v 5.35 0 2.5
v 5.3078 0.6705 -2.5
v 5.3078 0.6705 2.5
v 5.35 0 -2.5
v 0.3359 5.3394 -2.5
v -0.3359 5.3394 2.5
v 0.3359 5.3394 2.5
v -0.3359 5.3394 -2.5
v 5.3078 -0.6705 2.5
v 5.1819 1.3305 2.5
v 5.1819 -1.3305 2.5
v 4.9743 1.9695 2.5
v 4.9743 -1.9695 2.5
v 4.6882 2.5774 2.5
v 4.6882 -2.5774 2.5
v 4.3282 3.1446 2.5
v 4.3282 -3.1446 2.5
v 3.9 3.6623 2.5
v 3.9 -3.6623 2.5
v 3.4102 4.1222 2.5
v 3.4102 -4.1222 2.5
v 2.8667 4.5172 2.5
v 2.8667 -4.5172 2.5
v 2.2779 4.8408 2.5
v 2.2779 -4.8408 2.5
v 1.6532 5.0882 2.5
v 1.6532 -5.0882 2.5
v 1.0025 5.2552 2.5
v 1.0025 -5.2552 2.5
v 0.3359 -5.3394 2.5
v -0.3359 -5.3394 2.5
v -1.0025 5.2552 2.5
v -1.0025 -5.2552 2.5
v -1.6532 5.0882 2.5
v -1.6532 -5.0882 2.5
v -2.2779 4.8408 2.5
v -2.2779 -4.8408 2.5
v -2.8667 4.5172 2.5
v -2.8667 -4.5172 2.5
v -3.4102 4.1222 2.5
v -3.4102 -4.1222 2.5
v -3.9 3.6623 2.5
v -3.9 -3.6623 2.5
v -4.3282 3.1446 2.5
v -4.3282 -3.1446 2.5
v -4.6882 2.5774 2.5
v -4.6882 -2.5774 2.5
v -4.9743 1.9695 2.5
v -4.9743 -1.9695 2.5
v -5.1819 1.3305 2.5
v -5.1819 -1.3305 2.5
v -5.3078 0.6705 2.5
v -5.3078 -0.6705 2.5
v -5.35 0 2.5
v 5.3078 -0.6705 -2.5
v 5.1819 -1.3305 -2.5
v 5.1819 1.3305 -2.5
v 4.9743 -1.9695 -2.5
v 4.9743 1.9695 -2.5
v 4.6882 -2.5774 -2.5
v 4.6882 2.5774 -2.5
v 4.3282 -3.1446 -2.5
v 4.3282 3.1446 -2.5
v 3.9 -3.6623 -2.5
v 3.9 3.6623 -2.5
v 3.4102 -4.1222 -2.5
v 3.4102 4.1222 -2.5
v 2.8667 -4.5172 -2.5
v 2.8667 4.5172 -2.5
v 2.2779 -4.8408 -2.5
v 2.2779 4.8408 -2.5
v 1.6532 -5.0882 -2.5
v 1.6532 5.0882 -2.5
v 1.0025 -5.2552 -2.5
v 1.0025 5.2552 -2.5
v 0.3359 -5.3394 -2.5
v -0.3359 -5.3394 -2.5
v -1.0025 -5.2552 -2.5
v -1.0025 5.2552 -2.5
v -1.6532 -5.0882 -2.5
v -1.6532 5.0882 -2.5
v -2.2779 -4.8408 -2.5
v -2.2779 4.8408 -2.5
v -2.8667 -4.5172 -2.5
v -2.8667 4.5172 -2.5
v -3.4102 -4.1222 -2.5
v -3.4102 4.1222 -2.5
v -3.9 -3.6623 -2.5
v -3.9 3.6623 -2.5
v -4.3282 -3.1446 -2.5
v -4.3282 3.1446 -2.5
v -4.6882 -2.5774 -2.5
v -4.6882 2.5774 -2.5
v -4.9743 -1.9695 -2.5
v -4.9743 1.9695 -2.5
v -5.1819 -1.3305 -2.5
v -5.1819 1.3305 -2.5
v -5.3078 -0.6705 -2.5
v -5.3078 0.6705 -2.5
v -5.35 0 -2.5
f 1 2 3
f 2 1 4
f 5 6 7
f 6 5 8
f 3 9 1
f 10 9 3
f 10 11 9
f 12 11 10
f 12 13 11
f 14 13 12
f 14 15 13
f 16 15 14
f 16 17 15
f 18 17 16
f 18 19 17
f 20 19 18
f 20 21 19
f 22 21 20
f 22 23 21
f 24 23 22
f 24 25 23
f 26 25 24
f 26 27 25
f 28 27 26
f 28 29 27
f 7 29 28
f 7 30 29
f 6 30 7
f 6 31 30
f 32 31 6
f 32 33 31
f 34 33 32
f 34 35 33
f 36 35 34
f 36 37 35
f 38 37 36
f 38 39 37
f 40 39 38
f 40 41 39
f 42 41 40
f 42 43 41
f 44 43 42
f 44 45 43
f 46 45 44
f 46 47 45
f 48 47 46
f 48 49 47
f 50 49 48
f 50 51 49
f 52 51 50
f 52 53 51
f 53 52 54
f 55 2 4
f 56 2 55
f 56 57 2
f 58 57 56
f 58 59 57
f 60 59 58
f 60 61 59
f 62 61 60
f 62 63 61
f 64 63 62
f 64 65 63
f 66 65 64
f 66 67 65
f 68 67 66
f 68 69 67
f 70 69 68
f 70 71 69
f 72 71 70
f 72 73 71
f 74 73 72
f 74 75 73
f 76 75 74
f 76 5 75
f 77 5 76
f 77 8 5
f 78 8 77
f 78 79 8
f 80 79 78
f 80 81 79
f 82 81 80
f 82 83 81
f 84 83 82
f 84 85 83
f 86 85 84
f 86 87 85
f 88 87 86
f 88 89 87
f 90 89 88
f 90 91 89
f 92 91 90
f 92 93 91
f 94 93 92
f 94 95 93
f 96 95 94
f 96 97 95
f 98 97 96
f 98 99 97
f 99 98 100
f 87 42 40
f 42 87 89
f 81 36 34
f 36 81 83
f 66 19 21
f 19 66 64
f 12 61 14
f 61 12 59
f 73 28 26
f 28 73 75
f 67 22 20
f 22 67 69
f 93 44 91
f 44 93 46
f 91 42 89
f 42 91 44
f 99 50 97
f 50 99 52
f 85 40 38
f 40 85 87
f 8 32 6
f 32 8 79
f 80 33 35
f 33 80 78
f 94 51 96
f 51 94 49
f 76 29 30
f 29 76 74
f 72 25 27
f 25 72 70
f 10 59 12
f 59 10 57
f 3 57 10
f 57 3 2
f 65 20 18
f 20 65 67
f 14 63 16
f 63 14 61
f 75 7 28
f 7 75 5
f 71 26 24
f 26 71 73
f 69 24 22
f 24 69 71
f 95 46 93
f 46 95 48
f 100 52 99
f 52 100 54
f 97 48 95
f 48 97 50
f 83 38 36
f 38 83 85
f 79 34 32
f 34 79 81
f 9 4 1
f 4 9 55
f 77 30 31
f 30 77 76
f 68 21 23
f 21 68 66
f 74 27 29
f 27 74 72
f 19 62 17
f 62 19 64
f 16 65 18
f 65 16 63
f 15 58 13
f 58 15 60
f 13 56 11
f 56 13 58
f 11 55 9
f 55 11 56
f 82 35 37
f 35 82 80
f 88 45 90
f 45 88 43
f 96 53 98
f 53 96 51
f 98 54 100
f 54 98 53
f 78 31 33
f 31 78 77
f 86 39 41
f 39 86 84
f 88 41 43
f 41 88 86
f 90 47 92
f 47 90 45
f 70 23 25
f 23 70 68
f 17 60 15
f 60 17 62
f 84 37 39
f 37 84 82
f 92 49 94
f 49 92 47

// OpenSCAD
$fn = 50;


difference() {
	union() {
		translate(v = [0, 0, -2.5000000000]) {
			cylinder(h = 5, r = 5.3500000000);
		}
	}
	union() {
		translate(v = [0, 0, -100.0000000000]) {
			cylinder(h = 200, r = 0);
		}
	}
}
